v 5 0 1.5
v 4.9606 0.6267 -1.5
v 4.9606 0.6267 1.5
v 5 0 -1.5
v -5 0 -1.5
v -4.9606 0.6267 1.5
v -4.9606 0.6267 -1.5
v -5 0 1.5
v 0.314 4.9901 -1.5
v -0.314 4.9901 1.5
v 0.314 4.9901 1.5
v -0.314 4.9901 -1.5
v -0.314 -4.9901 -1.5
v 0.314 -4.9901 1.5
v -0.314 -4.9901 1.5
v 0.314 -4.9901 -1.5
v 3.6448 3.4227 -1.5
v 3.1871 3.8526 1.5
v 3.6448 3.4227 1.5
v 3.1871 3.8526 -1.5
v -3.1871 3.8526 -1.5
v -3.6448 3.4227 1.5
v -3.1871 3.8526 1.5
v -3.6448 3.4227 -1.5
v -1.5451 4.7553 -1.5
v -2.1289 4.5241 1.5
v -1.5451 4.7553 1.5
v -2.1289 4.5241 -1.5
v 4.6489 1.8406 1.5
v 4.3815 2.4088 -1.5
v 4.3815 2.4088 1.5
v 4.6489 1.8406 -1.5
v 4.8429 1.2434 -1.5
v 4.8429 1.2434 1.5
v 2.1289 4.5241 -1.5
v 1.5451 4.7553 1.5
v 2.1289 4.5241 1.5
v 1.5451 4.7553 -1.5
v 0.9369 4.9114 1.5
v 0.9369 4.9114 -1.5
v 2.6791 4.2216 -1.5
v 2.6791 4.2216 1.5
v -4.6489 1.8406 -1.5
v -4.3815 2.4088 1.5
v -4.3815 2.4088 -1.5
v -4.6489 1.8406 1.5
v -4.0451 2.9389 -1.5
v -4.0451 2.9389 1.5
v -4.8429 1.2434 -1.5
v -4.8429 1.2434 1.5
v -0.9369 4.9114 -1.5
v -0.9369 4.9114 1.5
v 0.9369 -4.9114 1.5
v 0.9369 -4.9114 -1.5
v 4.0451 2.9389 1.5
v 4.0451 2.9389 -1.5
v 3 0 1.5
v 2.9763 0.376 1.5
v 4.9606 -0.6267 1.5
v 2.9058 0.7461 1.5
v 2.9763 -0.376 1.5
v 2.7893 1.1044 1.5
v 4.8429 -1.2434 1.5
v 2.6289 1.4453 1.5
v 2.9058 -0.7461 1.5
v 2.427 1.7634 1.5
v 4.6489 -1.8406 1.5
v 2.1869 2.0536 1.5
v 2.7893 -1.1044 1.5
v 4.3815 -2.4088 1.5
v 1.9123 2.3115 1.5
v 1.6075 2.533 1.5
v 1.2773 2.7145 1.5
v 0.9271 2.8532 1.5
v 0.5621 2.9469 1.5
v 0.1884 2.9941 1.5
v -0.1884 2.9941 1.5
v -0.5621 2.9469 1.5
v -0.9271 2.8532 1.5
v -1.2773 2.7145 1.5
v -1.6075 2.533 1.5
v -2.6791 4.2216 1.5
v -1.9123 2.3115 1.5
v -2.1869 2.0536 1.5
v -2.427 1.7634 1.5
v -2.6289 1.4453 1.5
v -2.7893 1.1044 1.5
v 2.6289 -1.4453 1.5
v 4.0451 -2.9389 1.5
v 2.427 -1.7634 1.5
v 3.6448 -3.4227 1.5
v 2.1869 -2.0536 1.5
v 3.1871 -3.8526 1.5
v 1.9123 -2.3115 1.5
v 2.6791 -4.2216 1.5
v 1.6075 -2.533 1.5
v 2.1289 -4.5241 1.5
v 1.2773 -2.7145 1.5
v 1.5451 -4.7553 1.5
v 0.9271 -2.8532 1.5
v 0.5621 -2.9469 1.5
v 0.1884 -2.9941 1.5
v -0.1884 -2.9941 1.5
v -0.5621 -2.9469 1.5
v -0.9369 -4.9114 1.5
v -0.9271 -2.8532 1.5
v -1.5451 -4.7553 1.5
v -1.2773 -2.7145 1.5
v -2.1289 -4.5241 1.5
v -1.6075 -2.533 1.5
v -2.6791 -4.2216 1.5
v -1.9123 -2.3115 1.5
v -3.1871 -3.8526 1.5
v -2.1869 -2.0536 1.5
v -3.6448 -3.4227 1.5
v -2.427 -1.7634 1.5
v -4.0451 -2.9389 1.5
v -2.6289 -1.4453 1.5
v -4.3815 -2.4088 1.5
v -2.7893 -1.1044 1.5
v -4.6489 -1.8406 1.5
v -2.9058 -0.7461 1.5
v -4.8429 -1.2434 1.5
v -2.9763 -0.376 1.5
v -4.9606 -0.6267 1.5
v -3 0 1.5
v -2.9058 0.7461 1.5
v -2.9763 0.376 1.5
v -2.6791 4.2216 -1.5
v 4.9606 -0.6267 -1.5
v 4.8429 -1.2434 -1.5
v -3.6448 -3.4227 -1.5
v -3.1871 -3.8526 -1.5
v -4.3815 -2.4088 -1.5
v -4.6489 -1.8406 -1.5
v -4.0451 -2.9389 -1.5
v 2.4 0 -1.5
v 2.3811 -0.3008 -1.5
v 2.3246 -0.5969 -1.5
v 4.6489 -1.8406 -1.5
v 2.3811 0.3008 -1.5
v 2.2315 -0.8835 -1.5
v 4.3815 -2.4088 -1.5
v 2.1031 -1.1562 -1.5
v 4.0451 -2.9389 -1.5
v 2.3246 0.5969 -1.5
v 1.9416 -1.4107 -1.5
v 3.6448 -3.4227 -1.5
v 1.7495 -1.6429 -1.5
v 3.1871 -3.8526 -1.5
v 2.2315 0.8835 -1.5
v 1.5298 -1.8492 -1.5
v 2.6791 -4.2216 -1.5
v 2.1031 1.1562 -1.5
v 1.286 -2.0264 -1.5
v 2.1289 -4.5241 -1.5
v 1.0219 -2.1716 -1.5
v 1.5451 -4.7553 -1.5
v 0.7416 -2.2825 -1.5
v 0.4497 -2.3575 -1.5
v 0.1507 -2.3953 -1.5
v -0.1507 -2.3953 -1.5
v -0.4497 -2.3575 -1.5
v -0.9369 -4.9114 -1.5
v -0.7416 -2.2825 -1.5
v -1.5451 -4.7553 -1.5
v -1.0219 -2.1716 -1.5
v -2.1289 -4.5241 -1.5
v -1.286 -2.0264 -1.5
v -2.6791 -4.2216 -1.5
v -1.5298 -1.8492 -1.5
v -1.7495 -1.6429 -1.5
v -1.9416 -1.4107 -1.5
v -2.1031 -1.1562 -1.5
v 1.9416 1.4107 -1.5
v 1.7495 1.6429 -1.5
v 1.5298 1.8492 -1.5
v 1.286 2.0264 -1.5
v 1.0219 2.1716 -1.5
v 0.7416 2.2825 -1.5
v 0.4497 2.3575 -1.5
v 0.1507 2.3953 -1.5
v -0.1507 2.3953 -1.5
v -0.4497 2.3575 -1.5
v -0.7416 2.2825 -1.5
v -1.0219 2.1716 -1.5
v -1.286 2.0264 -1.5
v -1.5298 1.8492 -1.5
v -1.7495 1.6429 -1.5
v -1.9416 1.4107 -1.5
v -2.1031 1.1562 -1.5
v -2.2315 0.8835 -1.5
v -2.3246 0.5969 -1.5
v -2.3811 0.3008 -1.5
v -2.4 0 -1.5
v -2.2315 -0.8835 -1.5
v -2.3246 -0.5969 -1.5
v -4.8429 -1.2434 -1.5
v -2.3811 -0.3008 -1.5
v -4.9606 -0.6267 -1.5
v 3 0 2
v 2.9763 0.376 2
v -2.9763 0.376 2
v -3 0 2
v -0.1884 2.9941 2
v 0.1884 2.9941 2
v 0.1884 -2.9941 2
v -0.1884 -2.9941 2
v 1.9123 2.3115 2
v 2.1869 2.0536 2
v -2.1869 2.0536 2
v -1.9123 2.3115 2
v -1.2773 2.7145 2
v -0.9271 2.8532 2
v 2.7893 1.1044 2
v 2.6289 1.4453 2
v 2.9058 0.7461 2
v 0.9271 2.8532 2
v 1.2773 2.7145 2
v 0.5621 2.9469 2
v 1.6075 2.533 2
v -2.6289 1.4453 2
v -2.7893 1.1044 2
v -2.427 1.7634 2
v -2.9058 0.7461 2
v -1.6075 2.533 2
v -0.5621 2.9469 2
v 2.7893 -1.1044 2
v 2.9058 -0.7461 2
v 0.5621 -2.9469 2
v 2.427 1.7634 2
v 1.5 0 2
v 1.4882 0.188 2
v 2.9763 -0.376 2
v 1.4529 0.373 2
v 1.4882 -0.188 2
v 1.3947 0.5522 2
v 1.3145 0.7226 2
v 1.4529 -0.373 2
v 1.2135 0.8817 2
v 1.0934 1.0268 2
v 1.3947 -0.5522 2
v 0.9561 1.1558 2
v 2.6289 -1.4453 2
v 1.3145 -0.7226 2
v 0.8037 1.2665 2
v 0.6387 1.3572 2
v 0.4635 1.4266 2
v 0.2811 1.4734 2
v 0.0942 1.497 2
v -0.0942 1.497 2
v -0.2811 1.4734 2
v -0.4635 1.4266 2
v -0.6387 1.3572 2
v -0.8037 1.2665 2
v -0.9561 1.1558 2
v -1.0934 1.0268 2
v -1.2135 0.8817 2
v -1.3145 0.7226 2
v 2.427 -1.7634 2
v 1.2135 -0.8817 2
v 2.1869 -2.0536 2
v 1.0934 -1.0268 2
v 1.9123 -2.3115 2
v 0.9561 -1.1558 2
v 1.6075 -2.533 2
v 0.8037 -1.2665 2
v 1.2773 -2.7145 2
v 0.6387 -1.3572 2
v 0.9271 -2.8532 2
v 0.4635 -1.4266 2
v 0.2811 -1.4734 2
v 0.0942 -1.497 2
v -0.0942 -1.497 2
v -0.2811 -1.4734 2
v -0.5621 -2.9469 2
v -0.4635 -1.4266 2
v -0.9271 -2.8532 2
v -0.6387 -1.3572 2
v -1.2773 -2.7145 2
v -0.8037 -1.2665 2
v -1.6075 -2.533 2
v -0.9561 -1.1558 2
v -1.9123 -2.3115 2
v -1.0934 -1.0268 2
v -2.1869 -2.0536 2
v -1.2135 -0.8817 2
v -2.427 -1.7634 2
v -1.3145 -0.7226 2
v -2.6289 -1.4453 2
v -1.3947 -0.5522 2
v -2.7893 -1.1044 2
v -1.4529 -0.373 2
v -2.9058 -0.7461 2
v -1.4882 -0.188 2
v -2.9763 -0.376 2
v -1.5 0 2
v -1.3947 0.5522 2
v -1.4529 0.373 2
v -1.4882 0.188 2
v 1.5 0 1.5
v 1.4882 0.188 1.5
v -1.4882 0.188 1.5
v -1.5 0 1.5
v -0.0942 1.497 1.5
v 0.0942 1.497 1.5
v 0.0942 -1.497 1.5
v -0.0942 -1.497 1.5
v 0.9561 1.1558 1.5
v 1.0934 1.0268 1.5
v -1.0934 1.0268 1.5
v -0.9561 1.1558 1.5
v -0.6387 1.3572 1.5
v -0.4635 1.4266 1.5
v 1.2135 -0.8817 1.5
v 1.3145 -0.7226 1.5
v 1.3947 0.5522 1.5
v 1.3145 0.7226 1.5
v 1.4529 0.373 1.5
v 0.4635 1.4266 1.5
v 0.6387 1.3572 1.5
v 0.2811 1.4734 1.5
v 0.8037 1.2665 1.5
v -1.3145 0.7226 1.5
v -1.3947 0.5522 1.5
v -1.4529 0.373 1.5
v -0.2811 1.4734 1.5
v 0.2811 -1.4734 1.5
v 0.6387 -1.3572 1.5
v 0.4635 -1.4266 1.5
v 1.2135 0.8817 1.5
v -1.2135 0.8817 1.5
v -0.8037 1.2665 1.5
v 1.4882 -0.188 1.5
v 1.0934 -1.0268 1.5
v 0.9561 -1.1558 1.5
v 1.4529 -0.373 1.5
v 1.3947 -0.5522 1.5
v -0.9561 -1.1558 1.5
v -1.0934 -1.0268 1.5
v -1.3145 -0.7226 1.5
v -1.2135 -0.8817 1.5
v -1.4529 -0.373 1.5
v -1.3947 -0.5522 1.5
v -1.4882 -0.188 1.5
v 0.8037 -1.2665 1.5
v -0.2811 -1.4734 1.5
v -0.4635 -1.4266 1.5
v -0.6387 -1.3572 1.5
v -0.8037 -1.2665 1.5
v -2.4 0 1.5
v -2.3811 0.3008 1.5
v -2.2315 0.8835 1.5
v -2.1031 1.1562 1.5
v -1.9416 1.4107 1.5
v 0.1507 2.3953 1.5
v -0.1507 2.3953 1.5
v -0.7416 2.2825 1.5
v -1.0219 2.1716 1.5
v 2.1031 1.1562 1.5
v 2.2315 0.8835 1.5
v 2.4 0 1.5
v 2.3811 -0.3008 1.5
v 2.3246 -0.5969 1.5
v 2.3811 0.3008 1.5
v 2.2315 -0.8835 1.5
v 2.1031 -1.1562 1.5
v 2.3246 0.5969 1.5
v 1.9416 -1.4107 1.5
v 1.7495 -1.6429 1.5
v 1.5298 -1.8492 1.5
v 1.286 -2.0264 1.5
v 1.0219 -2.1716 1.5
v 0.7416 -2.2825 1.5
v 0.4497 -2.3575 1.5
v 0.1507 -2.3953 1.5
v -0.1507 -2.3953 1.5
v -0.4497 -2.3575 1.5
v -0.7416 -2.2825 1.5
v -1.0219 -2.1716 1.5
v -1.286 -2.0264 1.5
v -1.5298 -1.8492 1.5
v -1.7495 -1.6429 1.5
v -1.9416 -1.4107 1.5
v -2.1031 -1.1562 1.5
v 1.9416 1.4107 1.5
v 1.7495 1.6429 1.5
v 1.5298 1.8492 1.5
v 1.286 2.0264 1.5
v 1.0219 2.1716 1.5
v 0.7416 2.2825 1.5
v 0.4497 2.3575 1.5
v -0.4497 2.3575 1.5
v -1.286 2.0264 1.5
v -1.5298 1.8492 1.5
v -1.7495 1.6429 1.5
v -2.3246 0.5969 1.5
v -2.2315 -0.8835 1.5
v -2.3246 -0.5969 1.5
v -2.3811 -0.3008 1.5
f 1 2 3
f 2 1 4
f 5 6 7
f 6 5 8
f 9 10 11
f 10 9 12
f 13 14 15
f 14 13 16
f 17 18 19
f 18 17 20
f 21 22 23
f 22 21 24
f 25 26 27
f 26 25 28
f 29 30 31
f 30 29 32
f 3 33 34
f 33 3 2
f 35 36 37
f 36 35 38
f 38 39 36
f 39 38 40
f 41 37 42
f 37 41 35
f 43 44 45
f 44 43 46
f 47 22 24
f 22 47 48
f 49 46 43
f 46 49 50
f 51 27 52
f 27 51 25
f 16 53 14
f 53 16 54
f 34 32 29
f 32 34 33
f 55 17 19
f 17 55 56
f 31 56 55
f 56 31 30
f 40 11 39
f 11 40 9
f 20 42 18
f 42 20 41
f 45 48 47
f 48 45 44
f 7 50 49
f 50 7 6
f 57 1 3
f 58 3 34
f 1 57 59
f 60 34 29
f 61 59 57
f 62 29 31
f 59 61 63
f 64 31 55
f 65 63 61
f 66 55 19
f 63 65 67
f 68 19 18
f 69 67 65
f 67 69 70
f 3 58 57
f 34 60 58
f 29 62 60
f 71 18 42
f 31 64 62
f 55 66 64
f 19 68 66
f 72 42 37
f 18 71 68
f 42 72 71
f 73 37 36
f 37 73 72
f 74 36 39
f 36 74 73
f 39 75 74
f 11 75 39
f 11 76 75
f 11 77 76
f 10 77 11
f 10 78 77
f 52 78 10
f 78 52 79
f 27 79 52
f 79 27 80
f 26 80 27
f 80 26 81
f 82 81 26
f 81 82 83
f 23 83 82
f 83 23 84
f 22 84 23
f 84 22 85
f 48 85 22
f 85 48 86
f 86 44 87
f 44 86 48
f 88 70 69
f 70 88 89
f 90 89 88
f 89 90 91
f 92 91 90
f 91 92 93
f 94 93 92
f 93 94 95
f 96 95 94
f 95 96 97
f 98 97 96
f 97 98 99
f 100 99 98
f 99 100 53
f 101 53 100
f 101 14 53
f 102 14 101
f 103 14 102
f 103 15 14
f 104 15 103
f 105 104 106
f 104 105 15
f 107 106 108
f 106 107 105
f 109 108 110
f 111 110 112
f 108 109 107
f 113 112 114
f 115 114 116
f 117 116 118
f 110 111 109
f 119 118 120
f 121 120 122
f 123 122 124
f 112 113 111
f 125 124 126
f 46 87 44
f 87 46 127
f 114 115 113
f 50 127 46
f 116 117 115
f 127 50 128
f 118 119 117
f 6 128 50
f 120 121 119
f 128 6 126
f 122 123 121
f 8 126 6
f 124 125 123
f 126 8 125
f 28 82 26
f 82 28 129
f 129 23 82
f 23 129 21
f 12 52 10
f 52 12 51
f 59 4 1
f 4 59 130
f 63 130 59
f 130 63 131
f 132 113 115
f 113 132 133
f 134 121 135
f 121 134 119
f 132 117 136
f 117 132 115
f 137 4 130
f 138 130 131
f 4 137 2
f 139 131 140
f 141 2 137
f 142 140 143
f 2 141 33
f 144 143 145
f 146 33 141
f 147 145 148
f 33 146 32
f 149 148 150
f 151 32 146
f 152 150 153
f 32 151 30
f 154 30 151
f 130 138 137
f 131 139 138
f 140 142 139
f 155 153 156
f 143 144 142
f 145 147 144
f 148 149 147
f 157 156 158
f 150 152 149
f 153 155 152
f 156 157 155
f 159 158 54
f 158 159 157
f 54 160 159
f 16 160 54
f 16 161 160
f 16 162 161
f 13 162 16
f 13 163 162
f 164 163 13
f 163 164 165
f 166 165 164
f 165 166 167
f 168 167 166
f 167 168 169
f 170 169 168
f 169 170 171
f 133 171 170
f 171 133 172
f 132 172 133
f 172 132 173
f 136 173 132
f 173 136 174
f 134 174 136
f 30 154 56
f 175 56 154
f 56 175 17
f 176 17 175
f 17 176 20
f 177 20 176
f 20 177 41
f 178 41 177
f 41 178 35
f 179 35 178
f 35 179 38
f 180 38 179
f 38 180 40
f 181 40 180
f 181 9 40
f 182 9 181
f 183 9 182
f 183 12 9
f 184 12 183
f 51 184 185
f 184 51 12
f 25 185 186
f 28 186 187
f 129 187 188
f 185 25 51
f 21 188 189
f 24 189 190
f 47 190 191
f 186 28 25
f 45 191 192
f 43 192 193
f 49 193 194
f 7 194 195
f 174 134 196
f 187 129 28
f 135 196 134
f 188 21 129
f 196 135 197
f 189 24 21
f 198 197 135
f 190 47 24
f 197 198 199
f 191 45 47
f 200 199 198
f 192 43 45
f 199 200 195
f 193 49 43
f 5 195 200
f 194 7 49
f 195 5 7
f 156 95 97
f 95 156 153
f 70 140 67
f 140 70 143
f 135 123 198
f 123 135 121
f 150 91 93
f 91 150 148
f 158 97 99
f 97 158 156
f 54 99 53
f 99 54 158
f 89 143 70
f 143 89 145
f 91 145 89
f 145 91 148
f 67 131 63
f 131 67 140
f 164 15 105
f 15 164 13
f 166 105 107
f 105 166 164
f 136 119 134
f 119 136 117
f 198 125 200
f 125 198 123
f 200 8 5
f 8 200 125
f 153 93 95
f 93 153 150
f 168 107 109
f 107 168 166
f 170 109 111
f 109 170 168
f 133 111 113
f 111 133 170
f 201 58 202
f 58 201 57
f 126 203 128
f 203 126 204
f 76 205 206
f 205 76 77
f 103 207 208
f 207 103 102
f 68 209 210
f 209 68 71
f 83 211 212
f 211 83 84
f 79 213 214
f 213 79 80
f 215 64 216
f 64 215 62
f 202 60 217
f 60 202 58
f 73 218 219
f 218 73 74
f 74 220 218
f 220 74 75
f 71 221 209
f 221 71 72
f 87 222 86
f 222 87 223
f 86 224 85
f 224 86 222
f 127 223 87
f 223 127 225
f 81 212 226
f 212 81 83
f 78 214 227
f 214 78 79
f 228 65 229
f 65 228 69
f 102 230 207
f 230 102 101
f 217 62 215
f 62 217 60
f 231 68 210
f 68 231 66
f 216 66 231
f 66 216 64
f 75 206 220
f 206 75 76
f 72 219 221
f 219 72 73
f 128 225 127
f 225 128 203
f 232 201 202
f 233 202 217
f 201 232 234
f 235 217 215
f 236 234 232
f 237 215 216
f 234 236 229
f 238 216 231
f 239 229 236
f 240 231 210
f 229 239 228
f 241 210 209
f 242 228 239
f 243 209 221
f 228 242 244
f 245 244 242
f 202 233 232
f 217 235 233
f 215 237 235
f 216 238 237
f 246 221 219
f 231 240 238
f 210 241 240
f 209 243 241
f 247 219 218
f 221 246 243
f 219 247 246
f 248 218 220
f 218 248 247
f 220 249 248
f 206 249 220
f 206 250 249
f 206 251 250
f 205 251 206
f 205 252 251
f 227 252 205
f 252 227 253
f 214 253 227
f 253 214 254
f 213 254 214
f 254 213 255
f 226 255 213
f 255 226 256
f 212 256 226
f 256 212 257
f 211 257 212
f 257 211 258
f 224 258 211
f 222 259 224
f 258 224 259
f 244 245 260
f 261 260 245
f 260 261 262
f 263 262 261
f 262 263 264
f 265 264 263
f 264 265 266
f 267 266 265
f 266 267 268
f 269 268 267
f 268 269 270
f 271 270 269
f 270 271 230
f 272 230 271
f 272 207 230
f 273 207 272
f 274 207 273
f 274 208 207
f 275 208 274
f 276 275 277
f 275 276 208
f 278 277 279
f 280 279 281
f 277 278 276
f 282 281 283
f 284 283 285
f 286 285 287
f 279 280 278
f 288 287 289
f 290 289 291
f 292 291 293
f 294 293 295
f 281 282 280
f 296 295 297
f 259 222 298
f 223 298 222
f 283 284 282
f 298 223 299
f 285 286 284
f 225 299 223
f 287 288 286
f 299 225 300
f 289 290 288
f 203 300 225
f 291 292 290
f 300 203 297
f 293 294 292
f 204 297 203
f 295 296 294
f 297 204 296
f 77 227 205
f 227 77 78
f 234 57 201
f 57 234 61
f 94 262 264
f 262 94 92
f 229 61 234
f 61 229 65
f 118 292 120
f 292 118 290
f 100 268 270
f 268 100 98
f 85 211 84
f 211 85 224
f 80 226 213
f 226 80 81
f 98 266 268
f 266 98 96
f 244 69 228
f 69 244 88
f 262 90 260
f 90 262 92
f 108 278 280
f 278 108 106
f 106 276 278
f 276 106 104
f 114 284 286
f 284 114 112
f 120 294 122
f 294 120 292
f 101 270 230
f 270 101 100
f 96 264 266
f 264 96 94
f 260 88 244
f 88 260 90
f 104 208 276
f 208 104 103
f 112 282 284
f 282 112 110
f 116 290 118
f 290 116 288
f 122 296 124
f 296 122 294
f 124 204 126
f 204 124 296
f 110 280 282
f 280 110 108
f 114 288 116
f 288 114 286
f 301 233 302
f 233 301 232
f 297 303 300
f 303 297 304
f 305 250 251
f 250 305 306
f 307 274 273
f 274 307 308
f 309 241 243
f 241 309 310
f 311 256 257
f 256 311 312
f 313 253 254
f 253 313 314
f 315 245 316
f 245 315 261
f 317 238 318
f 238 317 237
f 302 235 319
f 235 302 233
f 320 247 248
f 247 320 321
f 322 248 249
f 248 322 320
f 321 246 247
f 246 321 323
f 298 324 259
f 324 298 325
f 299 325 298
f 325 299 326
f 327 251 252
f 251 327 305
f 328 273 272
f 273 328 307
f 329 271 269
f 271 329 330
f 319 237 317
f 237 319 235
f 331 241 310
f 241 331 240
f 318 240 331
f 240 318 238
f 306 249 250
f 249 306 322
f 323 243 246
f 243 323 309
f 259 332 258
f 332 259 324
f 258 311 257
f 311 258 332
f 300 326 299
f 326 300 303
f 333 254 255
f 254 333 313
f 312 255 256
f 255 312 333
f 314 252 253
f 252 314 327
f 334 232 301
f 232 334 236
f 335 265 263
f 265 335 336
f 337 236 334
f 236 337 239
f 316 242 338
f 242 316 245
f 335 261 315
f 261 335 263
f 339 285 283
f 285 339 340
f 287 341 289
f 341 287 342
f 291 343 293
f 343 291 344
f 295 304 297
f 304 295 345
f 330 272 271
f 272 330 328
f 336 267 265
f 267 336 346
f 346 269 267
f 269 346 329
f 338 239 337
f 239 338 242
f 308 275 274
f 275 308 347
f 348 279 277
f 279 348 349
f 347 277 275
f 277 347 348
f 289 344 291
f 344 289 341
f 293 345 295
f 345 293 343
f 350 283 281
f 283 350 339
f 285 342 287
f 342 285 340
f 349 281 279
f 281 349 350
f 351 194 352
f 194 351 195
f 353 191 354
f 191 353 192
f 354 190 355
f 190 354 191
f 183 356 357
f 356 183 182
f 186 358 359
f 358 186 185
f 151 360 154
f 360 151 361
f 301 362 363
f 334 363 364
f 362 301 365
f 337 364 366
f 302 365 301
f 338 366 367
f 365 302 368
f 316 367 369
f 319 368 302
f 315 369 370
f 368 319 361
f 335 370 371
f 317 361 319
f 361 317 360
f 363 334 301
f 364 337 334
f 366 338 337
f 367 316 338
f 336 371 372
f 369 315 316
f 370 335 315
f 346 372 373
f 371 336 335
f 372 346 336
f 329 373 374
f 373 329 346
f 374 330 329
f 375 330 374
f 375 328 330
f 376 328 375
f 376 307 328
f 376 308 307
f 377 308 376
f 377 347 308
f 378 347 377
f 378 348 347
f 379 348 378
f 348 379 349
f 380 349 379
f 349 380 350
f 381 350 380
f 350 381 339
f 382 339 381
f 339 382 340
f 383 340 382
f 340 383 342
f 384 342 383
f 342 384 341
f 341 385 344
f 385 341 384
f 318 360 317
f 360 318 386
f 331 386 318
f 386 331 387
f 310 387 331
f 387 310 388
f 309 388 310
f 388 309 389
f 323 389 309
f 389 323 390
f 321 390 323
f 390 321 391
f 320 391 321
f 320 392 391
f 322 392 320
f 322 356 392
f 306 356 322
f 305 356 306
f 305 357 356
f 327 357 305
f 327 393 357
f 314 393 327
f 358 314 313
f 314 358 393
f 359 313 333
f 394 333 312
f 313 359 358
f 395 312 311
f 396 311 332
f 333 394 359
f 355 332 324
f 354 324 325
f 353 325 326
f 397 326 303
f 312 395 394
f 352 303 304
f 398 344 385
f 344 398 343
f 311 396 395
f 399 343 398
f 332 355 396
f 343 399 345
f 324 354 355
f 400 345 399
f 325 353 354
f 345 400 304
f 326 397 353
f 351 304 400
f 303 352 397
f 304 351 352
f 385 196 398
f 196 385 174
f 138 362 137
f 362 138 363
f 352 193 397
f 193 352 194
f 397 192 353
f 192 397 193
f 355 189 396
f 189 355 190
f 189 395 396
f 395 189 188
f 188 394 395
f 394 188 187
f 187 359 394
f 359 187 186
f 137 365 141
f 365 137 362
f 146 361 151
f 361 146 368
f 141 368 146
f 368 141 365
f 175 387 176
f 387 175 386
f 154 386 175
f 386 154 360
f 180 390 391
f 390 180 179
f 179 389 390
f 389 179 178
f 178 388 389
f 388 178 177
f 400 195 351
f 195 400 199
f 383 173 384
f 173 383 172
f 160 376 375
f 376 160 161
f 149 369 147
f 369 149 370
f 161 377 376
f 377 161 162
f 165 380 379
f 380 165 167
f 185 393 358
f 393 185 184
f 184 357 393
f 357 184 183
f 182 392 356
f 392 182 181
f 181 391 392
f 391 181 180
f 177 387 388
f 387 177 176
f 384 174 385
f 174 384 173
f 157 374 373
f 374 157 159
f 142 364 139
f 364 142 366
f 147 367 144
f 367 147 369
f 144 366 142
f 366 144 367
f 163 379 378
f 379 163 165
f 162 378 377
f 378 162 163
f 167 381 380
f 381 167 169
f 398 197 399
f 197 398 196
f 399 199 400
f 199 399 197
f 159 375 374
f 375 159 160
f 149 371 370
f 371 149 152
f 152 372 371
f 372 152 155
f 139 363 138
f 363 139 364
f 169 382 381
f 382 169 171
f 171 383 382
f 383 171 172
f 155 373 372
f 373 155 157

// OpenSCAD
$fn = 50;


difference() {
	union() {
		translate(v = [0, 0, -1.5000000000]) {
			rotate(a = [0, 0, 0]) {
				cylinder(h = 3, r = 5.0000000000);
			}
		}
		translate(v = [0, 0, -1.5000000000]) {
			rotate(a = [0, 0, 0]) {
				cylinder(h = 3.5000000000, r = 3.0000000000);
			}
		}
	}
	union() {
		translate(v = [0, 0, -125.0000000000]) {
			rotate(a = [0, 0, 0]) {
				cylinder(h = 250, r = 1.5000000000);
			}
		}
		#translate(v = [0, 0, 1.5000000000]) {
			rotate(a = [0, 180, 0]) {
				cylinder(h = 3, r1 = 2.4000000000, r2 = 2.4000000000);
			}
		}
		#translate(v = [0, 0, 2.0000000000]) {
			rotate(a = [0, 180, 0]) {
				cylinder(h = 3.5000000000, r = 1.5000000000);
			}
		}
	}
}
